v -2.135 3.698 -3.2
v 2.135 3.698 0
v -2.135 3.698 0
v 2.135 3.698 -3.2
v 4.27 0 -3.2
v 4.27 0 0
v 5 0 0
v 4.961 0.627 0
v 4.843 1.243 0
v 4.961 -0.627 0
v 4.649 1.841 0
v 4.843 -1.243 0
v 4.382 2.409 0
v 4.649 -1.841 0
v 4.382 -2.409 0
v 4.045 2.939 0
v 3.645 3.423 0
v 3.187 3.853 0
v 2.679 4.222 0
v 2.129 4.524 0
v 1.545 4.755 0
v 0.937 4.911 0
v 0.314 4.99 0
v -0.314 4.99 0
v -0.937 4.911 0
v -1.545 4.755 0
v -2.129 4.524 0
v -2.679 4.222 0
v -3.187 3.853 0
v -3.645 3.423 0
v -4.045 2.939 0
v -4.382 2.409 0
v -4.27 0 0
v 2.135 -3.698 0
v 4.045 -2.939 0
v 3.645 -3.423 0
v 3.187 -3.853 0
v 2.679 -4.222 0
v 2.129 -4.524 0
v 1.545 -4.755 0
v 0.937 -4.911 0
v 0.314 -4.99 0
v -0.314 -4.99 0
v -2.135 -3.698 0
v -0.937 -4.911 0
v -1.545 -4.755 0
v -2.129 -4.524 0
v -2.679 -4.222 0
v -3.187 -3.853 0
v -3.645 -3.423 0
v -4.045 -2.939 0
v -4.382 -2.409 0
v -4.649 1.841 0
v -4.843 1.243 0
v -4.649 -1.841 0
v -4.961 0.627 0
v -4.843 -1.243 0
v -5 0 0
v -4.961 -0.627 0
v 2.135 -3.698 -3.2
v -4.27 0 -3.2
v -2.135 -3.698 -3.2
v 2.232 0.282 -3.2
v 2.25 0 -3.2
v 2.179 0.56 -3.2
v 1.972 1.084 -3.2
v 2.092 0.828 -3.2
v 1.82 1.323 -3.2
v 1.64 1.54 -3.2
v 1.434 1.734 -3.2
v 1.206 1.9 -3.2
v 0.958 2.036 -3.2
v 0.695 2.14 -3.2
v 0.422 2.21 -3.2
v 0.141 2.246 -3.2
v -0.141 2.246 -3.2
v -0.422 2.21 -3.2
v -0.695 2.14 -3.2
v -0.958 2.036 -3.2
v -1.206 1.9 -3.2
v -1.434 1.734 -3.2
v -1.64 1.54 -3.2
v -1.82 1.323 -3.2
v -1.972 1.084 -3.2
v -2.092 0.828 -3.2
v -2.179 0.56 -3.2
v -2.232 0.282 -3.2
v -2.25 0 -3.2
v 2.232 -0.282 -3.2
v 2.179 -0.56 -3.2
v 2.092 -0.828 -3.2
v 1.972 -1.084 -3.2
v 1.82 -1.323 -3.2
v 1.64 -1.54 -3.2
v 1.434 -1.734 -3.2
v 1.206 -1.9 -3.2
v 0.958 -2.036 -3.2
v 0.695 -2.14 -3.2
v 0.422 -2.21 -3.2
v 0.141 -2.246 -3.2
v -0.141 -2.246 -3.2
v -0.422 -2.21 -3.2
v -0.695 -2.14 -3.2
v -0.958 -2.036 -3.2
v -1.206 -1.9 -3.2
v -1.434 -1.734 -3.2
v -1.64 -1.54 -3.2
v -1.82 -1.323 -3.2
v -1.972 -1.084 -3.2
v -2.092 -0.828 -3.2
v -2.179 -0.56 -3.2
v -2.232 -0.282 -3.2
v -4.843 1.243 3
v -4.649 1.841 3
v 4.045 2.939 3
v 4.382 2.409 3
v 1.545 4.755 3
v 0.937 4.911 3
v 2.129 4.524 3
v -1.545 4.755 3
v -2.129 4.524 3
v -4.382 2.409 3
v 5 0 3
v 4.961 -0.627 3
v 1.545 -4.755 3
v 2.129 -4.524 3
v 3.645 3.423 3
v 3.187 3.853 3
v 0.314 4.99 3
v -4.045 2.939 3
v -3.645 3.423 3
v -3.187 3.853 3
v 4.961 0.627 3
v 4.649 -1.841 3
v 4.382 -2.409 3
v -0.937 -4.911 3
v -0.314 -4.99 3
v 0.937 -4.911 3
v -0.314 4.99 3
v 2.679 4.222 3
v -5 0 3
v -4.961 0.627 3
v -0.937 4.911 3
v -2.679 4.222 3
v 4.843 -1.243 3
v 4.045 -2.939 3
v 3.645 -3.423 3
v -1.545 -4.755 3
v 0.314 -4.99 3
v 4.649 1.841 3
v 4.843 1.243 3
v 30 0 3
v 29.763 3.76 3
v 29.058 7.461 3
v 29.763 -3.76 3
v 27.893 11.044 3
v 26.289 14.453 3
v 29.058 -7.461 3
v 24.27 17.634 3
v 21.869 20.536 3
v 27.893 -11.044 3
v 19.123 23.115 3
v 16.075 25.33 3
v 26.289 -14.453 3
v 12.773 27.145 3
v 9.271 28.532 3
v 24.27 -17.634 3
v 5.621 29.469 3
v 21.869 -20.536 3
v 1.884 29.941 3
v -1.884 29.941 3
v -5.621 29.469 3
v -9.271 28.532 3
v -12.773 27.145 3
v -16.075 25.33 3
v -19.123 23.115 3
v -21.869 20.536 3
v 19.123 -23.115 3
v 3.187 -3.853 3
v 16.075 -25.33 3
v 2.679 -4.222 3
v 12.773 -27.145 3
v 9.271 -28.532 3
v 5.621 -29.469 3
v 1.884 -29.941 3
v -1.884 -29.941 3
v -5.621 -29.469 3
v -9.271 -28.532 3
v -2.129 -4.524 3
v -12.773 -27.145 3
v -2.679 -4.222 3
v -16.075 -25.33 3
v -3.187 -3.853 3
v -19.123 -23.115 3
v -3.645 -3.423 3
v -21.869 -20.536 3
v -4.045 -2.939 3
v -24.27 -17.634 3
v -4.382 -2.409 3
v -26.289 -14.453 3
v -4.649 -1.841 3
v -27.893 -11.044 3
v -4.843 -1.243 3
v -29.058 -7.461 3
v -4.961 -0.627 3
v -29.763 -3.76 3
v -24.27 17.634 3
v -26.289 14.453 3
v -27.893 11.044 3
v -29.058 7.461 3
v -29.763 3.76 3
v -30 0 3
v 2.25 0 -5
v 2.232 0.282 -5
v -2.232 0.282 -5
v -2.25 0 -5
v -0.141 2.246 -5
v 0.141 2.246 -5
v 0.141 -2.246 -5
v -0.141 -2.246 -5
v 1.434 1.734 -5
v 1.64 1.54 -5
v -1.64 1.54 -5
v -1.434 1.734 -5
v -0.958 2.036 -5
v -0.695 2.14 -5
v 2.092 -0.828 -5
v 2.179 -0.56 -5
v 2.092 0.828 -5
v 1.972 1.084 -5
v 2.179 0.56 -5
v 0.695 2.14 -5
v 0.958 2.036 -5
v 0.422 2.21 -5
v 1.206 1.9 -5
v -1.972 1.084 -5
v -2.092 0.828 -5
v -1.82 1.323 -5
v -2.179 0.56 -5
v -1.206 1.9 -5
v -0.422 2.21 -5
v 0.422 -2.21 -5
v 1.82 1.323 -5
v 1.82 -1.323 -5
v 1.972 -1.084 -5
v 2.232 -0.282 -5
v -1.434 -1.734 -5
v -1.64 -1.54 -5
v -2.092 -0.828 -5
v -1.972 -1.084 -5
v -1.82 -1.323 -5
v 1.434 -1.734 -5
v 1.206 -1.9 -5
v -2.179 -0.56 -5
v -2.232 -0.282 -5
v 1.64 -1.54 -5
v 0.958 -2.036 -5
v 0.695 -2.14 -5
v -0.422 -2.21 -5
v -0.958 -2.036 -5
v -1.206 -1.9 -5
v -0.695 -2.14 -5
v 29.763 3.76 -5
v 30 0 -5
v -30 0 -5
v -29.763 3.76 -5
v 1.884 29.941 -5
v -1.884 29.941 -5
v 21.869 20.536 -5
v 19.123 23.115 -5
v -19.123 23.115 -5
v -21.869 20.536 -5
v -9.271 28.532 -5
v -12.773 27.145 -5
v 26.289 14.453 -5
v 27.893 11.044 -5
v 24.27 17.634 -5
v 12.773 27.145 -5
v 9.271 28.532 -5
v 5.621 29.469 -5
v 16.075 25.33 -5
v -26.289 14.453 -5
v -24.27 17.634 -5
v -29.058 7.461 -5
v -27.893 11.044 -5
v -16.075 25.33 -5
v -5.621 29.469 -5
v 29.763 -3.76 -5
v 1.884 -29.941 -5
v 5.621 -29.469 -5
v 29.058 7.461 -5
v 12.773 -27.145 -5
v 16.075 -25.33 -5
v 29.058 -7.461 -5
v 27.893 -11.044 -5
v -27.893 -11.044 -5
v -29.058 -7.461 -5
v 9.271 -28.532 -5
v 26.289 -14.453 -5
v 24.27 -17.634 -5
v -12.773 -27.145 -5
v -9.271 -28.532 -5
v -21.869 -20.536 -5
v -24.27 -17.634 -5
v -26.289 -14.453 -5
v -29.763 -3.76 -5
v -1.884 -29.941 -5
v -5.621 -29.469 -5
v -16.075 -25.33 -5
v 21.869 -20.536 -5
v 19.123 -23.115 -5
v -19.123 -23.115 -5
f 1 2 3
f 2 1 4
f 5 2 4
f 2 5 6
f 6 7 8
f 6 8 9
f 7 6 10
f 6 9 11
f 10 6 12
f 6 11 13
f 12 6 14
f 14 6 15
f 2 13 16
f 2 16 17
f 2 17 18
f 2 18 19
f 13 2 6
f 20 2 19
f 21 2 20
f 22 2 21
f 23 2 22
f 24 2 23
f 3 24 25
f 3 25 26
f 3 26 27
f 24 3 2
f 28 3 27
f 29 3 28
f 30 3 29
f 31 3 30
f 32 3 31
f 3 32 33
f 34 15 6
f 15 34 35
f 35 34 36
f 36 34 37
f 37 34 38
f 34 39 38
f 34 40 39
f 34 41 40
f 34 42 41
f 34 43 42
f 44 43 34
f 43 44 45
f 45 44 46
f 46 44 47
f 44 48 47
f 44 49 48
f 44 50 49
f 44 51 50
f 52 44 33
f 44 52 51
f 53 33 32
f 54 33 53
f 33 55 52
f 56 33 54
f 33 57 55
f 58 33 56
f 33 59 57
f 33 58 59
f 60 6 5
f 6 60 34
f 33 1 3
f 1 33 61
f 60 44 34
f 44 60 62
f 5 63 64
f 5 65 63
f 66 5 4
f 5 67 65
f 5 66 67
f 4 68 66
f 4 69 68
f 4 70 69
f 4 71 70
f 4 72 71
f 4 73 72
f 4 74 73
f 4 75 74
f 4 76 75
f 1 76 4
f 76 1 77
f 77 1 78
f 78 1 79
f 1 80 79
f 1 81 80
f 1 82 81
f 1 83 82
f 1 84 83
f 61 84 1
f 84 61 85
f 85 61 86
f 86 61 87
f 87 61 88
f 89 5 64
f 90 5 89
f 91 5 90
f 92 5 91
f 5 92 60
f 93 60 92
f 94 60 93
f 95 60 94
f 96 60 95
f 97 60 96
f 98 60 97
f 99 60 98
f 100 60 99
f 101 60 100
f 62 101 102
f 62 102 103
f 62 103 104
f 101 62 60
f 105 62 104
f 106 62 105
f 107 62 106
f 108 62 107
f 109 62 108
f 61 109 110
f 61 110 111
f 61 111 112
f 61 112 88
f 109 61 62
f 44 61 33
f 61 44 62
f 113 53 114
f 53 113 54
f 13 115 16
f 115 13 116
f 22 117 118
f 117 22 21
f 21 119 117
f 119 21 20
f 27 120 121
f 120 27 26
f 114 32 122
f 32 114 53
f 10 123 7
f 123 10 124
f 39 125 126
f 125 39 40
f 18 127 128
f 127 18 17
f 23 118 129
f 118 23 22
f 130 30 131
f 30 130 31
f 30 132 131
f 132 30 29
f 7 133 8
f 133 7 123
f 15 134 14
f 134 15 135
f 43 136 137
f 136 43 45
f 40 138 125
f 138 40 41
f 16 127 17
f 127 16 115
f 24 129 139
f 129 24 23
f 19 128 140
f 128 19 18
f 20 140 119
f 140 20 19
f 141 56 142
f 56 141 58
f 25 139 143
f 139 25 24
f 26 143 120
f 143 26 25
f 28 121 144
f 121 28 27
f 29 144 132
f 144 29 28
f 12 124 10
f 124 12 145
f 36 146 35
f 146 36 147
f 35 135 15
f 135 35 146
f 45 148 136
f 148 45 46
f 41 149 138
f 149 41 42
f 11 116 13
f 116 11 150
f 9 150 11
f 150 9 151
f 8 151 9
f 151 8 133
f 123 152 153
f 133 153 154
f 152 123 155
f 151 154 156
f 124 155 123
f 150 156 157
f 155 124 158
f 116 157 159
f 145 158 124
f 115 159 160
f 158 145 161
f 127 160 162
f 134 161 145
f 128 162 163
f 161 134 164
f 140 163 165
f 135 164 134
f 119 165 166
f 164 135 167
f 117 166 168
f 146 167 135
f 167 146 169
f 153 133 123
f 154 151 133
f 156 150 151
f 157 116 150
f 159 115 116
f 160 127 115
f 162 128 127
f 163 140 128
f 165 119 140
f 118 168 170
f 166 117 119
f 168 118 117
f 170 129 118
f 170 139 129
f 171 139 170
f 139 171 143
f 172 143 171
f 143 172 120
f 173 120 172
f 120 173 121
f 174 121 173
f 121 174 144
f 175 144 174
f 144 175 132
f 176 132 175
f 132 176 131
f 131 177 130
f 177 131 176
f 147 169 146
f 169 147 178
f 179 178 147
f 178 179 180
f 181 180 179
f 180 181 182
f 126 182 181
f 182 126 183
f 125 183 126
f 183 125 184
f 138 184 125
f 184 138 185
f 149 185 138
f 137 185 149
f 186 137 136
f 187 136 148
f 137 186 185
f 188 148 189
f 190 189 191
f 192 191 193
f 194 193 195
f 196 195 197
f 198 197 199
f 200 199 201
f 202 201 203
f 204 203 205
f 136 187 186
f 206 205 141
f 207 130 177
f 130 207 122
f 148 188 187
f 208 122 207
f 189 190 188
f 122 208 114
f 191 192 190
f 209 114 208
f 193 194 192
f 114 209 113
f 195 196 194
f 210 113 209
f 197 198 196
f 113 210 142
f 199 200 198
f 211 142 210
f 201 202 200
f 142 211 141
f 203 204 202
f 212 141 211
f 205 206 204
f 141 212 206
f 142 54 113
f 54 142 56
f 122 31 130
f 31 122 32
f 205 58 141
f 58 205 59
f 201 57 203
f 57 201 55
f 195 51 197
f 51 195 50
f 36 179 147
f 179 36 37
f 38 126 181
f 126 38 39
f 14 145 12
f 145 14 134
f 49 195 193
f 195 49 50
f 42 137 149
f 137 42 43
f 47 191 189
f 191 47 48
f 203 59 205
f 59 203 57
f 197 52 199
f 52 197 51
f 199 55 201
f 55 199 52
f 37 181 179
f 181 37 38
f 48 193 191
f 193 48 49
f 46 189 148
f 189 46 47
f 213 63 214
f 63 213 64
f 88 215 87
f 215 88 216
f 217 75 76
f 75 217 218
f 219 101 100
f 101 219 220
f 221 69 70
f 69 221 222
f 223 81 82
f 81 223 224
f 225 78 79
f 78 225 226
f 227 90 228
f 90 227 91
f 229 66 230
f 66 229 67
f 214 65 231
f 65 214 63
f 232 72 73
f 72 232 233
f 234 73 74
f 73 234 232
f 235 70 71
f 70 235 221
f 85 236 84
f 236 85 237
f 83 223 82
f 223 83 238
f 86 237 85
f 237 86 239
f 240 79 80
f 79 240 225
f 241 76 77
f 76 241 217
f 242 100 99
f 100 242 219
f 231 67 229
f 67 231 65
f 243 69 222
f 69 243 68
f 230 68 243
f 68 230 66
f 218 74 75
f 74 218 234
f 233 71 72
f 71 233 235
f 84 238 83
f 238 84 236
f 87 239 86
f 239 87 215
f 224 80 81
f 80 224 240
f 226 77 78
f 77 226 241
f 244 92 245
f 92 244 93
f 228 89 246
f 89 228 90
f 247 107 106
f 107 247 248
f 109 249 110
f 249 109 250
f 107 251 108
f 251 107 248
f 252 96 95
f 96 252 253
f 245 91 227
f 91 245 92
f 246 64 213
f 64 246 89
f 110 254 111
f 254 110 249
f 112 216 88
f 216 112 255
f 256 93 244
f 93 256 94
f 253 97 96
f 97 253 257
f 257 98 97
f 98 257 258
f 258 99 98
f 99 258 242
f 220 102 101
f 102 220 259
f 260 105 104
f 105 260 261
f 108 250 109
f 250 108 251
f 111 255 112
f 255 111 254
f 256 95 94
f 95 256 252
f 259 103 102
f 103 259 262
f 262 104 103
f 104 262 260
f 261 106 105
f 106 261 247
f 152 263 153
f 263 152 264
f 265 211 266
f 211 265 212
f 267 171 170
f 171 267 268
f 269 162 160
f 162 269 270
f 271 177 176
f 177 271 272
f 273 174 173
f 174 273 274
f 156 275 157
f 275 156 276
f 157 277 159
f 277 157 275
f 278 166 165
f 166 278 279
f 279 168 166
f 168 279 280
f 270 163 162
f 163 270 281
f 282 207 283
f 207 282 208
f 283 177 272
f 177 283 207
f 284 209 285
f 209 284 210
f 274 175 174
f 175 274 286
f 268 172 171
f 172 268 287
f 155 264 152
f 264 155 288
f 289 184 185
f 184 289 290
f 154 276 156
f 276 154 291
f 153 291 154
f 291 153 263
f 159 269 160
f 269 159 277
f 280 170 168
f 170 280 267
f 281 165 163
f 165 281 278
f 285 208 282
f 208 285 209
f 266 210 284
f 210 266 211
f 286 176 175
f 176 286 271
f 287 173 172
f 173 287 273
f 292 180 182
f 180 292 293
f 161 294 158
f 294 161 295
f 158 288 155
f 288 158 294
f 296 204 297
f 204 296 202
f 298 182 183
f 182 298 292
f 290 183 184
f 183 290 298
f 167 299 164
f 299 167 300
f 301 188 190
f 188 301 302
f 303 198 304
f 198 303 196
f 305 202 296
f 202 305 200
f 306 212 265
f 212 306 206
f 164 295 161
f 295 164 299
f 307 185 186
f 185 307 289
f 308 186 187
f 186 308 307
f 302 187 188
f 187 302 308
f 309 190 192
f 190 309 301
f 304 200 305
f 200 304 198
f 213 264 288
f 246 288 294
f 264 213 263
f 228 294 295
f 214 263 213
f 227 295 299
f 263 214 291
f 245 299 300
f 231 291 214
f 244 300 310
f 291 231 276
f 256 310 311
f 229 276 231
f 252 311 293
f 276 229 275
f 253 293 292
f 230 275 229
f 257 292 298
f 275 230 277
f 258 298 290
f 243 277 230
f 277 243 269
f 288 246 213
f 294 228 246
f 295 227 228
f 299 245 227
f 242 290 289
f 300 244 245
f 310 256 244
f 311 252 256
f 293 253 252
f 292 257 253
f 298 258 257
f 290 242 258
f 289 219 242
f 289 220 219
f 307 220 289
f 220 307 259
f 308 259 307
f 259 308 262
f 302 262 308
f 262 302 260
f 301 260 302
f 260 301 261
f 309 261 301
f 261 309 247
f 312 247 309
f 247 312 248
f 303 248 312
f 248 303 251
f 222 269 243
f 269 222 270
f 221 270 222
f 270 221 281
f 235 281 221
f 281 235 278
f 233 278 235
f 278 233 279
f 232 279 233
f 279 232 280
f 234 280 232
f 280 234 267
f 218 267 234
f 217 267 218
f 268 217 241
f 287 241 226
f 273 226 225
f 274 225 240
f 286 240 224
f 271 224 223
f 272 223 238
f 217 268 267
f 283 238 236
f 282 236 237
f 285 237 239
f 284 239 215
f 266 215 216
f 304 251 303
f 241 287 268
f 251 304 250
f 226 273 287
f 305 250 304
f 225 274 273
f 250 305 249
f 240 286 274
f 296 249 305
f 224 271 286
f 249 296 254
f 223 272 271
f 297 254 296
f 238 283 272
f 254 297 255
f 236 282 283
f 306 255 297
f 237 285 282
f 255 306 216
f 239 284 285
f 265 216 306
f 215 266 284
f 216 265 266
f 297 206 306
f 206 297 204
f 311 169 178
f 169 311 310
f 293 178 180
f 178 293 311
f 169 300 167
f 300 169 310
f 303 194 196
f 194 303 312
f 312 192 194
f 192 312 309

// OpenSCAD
$fn = 50;


difference() {
	union() {
		translate(v = [0, 0, -5.0000000000]) {
			cylinder(h = 8.0000000000, r = 30.0000000000);
		}
	}
	union() {
		translate(v = [0, 0, 0]) {
			rotate(a = [0, 0, 0]) {
				difference() {
					union() {
						translate(v = [0, 0, -3.2000000000]) {
							linear_extrude(height = 3.2000000000) {
								polygon(points = [[4.2698000000, 0.0000000000], [2.1349000000, 3.6977552691], [-2.1349000000, 3.6977552691], [-4.2698000000, 0.0000000000], [-2.1349000000, -3.6977552691], [2.1349000000, -3.6977552691]]);
							}
						}
					}
					union();
				}
			}
		}
		#cylinder(h = 3, r = 5.0000000000);
		#translate(v = [0, 0, -100.0000000000]) {
			cylinder(h = 200, r = 2.2500000000);
		}
	}
}
